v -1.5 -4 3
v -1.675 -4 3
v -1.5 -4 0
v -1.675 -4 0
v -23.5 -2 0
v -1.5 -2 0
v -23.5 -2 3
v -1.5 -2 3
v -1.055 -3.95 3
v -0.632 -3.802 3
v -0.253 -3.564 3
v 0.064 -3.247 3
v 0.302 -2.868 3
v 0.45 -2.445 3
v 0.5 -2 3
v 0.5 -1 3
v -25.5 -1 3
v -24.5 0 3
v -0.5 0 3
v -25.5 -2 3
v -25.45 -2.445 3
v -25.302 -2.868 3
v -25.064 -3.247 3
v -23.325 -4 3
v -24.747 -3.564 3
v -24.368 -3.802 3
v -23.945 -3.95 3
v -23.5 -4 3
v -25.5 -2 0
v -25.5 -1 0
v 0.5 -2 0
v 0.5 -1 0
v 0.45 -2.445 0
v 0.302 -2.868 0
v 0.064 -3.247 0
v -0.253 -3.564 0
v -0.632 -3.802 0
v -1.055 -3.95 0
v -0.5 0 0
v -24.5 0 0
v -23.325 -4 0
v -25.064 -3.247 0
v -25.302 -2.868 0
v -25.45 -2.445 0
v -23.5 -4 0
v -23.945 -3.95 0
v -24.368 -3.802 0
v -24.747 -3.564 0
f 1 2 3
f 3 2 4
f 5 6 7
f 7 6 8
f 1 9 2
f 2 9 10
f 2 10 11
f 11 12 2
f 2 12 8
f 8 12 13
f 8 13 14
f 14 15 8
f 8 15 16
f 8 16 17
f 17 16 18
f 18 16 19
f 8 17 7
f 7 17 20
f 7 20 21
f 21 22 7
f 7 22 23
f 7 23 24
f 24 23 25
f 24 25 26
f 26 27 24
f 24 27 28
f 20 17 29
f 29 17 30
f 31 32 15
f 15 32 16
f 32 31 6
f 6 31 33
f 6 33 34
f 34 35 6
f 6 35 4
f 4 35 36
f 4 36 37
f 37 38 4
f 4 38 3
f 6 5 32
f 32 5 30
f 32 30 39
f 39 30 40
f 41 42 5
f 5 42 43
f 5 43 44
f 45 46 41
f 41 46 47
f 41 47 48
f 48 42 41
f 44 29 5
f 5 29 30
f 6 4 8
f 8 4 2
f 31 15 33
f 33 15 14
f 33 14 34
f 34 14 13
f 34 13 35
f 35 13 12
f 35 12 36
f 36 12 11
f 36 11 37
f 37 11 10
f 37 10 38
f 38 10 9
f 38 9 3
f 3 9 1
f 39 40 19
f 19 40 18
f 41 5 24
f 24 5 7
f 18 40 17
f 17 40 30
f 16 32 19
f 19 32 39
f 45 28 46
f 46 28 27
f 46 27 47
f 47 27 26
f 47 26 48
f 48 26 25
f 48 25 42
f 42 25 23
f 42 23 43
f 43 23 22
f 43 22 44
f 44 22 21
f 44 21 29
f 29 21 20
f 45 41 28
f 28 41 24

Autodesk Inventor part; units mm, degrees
ref_plane "YZ Plane" through (0, 0, 0) normal (1, 0, 0) x (0, 1, 0)
ref_plane "XZ Plane" through (0, 0, 0) normal (0, 1, 0) x (-1, 0, 0)
ref_plane "XY Plane" through (0, 0, 0) normal (0, 0, 1) x (1, 0, 0)
sketch "Sketch2" plane through (0, 0, 0) normal (0, 0, 1) x (1, 0, 0)
  line L0 (0, 0) -> (-25, 0)
  line L1 (-25, 0) -> (-25, -2)
  line L2 (-25, -2) -> (0, -2)
  line L3 (0, -2) -> (0, 0)
  line L4 (-25.5, 0) -> (-23.5, 0)
  line L5 (-23.5, 0) -> (-23.5, -4)
  line L6 (-23.5, -4) -> (-25.5, -4)
  line L7 (-25.5, -4) -> (-25.5, 0)
  line L8 (0.5, 0) -> (-1.5, 0)
  line L9 (-1.5, 0) -> (-1.5, -4)
  line L10 (-1.5, -4) -> (0.5, -4)
  line L11 (0.5, -4) -> (0.5, 0)
  point P0 (-23.5, -2)
  point P1 (-1.5, -2)
  dimension "d0" = 25
  dimension "d1" = 2
  dimension "d2" = 2
  dimension "d3" = 4
  dimension "d4" = 2
  dimension "d5" = 4
extrude "Extrusion1" add sketch "Sketch2" along normal blind 3
chamfer "Chamfer1" distance 1 angle 45 2 edges at (-25.5, 0, 1.5) (0.5, 0, 1.5)
draft "FaceDraft1" angle -5 pull direction (0, -1, 0) faces at (-23.5, -3.3333, 1) fixed edges at (-23.5, -2, 1.5)
draft "FaceDraft2" angle -5 pull direction (0, -1, 0) faces at (-1.5, -2.6667, 1) fixed edges at (-1.5, -2, 1.5)
fillet "Fillet1" radius 2 2 edges at (-25.5, -4, 1.5) (0.5, -4, 1.5)
properties part number "Clip"
